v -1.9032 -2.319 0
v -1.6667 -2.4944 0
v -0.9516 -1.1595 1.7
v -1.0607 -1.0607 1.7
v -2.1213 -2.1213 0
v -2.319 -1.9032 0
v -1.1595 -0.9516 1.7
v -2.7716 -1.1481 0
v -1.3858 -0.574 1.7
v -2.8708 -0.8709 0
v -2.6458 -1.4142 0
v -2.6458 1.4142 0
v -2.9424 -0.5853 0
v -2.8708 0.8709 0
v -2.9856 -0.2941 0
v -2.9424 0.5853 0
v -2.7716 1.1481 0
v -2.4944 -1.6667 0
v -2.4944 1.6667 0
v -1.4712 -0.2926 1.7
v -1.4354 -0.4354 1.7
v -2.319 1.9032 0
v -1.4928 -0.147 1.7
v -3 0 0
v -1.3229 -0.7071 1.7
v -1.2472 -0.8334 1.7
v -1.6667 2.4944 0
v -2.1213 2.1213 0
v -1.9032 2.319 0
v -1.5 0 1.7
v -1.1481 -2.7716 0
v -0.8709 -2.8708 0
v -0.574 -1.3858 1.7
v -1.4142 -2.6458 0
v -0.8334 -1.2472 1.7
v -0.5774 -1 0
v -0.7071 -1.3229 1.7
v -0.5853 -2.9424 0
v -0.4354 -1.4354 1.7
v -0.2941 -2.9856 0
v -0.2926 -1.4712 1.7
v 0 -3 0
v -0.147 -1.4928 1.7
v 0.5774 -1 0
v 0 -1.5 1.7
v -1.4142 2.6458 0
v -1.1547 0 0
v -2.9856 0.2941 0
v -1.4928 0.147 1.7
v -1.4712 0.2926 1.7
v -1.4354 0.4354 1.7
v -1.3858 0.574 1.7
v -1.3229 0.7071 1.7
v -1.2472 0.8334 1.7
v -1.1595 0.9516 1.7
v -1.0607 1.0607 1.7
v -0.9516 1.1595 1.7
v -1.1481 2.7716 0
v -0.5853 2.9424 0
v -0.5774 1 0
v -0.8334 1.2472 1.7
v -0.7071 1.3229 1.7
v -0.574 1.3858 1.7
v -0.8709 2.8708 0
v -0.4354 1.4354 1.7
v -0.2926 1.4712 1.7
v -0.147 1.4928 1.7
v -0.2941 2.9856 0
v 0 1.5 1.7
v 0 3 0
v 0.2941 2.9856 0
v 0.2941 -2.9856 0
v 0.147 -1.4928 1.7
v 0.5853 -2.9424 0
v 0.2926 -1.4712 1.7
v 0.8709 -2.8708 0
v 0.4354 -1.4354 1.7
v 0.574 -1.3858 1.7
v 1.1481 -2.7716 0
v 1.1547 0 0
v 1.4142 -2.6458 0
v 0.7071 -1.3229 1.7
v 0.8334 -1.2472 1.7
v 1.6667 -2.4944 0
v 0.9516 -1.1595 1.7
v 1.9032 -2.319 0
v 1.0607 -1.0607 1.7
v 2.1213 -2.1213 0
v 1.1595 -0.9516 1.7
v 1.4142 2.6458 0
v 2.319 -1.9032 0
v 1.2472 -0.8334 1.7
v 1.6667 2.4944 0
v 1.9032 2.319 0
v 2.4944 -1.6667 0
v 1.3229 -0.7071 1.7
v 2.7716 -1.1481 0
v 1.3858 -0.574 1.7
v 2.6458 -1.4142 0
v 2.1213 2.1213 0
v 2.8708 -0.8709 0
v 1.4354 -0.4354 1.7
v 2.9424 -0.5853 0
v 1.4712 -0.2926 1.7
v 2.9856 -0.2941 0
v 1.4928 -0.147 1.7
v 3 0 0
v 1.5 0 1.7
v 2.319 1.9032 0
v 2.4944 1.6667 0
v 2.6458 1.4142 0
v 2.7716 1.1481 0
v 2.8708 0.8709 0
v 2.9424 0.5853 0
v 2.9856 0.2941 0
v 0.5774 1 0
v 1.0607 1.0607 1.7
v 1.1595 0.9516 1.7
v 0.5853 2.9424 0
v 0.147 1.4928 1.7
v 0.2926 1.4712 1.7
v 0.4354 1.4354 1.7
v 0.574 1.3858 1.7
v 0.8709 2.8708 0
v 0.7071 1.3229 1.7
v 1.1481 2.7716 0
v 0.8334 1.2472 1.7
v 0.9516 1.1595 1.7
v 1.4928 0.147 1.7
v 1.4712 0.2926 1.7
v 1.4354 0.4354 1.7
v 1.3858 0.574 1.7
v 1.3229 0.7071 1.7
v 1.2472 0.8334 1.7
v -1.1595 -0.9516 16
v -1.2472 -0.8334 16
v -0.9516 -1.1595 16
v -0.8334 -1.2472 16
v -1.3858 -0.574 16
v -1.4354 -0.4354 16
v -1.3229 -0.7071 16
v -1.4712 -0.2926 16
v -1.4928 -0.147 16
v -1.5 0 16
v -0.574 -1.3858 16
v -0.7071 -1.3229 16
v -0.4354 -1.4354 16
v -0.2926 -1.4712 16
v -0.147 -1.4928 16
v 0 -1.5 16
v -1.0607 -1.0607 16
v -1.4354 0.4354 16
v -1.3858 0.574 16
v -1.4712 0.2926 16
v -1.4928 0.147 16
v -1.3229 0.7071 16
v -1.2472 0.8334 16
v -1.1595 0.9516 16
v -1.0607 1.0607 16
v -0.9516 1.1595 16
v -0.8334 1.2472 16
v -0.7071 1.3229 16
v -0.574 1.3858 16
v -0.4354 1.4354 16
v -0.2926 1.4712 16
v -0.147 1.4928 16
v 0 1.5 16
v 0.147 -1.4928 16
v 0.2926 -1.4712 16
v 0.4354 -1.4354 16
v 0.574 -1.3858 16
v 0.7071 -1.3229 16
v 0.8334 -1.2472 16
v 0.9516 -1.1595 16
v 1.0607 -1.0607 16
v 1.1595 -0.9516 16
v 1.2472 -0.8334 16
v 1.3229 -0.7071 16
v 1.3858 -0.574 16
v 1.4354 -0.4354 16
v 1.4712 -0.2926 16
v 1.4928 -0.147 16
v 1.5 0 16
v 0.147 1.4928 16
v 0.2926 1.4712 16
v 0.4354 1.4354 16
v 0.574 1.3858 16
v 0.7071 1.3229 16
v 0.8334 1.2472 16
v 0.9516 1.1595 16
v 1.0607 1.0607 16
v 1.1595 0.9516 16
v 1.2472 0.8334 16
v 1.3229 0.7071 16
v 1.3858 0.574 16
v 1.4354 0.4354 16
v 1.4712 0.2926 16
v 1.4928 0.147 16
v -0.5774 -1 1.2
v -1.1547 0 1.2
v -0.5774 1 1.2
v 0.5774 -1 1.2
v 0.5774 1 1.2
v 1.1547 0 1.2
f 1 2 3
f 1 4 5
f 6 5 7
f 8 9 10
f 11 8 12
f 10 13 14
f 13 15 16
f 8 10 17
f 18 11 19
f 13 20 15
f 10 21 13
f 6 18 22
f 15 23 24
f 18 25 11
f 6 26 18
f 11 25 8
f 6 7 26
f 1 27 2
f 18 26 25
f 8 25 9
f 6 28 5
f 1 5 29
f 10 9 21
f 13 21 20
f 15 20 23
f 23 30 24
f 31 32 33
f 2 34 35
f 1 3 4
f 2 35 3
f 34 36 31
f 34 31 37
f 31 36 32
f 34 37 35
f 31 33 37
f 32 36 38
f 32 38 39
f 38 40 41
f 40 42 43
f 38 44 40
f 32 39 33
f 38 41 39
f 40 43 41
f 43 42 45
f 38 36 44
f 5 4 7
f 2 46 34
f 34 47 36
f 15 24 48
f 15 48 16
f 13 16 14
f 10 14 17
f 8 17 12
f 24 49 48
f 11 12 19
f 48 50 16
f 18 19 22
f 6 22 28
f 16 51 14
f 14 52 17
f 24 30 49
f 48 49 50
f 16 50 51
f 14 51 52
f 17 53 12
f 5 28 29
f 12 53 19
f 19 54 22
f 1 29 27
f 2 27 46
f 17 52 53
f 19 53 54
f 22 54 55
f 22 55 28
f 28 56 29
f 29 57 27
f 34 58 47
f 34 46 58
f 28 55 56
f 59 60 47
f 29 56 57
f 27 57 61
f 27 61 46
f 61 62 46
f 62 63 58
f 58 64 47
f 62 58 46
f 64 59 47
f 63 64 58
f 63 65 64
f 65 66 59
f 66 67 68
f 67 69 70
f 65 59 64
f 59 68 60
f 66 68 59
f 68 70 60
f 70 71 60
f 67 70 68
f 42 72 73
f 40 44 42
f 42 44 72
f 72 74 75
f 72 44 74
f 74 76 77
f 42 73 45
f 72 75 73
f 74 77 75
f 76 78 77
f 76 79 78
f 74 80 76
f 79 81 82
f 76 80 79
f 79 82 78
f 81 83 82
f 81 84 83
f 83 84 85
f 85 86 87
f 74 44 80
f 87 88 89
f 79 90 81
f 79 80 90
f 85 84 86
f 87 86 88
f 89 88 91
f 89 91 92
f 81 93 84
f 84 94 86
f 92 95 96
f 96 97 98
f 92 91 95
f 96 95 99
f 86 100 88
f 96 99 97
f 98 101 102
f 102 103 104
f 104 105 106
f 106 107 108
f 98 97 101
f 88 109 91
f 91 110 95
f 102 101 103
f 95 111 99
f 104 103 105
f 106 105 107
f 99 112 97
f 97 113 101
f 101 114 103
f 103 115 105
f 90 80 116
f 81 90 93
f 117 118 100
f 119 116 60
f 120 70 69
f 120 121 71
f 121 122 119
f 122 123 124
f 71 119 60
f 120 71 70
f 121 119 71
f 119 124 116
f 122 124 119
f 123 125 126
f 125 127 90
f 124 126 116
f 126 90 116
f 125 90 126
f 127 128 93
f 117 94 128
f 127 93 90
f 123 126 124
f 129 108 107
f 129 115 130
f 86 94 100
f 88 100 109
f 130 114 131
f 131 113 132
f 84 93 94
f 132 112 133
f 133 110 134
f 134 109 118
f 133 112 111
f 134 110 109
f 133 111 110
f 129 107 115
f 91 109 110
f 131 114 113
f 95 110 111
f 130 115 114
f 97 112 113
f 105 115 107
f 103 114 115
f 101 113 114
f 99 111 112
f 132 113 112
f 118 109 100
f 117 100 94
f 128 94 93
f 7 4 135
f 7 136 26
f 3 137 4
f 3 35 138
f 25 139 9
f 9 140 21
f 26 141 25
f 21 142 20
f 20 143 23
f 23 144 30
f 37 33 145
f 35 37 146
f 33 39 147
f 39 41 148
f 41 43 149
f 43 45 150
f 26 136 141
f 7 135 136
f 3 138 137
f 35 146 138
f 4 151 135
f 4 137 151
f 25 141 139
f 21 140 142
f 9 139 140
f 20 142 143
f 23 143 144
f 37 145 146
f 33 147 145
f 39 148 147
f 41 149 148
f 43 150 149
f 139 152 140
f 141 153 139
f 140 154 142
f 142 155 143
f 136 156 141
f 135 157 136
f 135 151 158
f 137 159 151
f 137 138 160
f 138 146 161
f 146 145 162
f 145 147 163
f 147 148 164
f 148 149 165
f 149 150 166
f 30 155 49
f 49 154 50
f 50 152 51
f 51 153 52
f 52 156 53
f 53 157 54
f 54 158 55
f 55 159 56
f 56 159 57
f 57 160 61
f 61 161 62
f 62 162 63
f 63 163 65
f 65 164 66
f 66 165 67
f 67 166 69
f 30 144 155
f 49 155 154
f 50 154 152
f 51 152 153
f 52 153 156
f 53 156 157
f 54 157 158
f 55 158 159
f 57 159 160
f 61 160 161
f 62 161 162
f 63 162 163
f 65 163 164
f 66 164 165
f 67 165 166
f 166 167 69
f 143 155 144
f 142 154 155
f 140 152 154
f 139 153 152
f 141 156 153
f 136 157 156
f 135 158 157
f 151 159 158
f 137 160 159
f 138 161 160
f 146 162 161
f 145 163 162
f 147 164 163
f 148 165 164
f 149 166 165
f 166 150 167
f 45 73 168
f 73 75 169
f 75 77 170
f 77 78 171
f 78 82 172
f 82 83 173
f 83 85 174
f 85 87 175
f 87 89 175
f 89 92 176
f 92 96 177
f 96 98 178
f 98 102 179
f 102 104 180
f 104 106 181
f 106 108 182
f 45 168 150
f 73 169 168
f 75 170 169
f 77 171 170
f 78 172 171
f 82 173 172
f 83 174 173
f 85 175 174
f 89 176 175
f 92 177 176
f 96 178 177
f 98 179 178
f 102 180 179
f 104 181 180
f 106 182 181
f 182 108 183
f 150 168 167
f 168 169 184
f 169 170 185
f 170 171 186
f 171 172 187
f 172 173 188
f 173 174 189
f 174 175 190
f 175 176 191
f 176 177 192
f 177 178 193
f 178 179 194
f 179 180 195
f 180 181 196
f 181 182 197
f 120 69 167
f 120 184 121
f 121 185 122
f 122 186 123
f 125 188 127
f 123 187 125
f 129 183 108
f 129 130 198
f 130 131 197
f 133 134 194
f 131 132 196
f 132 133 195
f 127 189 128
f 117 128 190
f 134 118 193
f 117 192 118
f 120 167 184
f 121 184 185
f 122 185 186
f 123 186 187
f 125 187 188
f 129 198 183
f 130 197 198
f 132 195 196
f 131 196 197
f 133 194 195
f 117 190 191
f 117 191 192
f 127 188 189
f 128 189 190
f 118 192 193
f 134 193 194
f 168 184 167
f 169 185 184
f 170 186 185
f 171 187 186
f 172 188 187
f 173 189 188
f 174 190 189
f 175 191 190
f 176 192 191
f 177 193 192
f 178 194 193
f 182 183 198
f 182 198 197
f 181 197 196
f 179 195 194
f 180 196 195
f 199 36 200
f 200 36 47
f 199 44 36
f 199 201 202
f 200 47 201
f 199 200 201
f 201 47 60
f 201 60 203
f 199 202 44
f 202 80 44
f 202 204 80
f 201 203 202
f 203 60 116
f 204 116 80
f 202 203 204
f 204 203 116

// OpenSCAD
$fn=64; difference() { union() { cylinder(h=1.7,r1=3,r2=1.5); translate([0,0,1.7]) cylinder(h=16-1.7,r=1.5); } translate([0,0,-0.01]) cylinder(h=1.21,r=2/sqrt(3),$fn=6); }
